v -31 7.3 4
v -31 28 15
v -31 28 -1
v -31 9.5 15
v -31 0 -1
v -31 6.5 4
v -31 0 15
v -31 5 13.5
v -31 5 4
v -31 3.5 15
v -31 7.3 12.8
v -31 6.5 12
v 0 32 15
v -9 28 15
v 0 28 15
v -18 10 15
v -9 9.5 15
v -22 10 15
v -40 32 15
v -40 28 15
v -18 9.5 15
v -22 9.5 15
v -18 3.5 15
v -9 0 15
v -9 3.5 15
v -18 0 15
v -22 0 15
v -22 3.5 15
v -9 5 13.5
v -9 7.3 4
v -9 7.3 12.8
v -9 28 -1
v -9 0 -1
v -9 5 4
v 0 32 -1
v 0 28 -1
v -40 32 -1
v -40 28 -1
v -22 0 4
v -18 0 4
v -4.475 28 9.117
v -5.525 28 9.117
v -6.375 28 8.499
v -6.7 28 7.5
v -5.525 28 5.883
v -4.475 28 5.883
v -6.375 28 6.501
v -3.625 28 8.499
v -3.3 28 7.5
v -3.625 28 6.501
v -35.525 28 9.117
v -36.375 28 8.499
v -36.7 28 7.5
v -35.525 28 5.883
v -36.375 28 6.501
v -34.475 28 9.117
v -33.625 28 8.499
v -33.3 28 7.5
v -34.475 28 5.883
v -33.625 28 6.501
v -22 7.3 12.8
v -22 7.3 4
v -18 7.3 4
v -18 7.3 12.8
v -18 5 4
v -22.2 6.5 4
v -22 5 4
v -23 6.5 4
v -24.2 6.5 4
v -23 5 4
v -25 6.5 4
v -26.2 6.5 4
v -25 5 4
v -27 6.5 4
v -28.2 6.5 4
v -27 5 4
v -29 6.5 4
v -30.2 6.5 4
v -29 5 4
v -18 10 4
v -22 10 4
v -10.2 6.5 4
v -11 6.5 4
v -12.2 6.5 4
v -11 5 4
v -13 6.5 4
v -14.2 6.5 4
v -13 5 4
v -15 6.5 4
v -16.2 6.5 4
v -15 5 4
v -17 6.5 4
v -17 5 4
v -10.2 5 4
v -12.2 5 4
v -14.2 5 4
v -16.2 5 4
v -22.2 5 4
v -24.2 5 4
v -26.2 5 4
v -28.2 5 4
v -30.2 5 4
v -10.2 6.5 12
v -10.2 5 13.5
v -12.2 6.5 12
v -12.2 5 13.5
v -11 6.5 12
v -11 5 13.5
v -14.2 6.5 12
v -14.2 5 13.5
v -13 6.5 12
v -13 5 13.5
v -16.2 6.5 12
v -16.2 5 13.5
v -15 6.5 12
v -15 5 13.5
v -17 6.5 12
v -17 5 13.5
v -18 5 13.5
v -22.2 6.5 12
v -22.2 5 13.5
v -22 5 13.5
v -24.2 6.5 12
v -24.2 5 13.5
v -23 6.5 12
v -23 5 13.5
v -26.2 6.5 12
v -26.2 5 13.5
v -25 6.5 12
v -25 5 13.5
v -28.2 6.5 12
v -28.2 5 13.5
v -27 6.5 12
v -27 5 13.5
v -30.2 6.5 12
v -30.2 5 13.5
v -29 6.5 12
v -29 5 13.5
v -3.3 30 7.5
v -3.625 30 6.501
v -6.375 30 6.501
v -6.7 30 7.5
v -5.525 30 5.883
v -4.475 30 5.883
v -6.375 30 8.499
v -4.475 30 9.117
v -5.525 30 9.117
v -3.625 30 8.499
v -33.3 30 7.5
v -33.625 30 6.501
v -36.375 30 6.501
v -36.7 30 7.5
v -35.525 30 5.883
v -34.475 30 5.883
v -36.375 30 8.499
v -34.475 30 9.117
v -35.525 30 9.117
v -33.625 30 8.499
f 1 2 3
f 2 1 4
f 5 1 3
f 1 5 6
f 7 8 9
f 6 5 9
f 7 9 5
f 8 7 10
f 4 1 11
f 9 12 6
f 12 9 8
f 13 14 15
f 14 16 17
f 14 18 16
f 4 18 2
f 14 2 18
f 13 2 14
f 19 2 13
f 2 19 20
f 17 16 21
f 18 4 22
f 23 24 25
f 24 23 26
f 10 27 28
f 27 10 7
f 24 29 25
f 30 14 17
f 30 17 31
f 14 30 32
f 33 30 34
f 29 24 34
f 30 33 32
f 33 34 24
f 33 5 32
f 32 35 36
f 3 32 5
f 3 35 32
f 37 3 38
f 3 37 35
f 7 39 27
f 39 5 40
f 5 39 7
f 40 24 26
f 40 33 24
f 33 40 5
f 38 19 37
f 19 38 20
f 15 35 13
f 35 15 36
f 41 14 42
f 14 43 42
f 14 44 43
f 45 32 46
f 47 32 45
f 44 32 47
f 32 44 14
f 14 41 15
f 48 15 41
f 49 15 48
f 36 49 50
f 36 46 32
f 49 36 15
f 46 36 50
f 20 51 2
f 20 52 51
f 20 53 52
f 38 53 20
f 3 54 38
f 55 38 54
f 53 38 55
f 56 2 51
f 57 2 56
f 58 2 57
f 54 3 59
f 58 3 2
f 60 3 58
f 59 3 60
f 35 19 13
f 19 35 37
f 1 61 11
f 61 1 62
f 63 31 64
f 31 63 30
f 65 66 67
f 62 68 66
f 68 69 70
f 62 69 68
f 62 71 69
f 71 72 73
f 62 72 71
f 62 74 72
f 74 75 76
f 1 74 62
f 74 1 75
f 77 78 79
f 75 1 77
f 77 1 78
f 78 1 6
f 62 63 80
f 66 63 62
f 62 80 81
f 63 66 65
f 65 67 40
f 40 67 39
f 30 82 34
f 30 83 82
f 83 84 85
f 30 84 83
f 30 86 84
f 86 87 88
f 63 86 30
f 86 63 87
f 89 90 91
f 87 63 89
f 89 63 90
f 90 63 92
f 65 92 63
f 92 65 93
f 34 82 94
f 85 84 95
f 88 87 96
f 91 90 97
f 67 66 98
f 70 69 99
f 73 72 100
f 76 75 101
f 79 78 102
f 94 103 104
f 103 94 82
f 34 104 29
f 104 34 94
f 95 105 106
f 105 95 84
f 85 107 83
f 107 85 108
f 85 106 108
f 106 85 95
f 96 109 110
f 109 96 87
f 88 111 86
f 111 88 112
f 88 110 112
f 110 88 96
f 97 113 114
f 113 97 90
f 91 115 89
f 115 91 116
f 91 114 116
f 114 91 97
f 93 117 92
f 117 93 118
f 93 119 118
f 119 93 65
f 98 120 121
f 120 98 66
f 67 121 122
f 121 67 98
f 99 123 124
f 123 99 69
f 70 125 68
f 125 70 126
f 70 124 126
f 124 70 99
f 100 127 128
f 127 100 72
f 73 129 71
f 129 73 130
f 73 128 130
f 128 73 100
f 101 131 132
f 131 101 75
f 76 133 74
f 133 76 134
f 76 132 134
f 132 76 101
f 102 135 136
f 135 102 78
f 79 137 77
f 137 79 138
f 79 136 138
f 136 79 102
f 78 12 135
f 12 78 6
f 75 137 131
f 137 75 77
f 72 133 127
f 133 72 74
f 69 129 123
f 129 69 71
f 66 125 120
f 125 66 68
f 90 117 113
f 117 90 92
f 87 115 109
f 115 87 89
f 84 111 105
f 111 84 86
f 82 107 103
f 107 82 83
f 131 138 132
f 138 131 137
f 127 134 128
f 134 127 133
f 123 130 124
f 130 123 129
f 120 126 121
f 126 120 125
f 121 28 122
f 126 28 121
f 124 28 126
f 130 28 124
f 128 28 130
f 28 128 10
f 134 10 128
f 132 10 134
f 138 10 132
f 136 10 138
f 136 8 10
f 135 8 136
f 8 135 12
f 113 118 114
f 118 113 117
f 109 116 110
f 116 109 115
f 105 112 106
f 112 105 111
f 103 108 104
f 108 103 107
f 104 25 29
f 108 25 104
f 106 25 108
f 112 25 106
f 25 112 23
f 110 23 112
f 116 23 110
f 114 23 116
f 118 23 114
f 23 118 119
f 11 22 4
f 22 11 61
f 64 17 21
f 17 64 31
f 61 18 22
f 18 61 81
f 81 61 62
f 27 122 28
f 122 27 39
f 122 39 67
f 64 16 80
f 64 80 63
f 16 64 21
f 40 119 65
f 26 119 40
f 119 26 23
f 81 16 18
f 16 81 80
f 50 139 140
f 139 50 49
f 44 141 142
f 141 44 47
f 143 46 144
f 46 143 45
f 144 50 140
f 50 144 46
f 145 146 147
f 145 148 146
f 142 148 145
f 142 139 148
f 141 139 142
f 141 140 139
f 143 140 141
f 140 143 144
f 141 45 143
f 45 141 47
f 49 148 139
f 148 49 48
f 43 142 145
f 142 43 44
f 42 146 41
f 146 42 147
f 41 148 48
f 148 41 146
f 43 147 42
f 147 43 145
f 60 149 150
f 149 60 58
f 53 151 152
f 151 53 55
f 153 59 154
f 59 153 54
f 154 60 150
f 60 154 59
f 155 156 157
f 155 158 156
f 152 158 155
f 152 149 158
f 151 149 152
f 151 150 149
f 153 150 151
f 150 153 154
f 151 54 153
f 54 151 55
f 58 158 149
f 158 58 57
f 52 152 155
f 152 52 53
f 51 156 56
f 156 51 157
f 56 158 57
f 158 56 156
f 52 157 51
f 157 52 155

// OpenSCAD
// PRUSA iteration3
// Y belt holder
// GNU GPL v3
// Josef Průša <iam@josefprusa.cz> and contributors
// http://www.reprap.org/wiki/Prusa_Mendel
// http://prusamendel.org
// Modified by Diego Viejo

//GT2 there is bunch of GT2 belts with different tooth-to-tooth distance
//adjust to your needs
belt_tooth_distance = 2;
belt_tooth_ratio = 0.8; //0.675//0.5;

beltDepth = 32-25;

module belt_holder_base(){
 translate([-22-9.0,0,-1]) cube([22,31,16]); 
// translate([-23-8.5,11,-1]) cube([23,17,16]);
 translate([-40,28,-1]) cube([40,4,16]);	
}

module belt_holder_beltcut(){
 position_tweak=-0.2;
 // Belt slit
 translate([-66,-0.5+beltDepth,4]) cube([67,0.8,15]);
 // Smooth insert cutout
 translate([-66,-0.5+beltDepth,12]) rotate([45,0,0]) cube([67,15,15]);
 // Individual teeth
 for ( i = [0 : 23] ){
  translate([0-i*belt_tooth_distance+position_tweak,-0.5+beltDepth-1.5,4]) 
    cube([belt_tooth_distance-belt_tooth_ratio,2.3,15]);
 }
 // Middle opening
 translate([-2-20,-1,4]) cube([4,11,15]);	
}

module belt_holder_holes(){
 #translate([-5,0,7.5]) rotate([-90,0,0]) cylinder(h=30, r=1.7, $fn=10);
 #translate([-40+5,0,7.5]) rotate([-90,0,0]) cylinder(h=30, r=1.7, $fn=10);
}

// Final part
module belt_holder(){
 difference(){
  belt_holder_base();
  belt_holder_beltcut();
  belt_holder_holes();
 }
}

belt_holder();
